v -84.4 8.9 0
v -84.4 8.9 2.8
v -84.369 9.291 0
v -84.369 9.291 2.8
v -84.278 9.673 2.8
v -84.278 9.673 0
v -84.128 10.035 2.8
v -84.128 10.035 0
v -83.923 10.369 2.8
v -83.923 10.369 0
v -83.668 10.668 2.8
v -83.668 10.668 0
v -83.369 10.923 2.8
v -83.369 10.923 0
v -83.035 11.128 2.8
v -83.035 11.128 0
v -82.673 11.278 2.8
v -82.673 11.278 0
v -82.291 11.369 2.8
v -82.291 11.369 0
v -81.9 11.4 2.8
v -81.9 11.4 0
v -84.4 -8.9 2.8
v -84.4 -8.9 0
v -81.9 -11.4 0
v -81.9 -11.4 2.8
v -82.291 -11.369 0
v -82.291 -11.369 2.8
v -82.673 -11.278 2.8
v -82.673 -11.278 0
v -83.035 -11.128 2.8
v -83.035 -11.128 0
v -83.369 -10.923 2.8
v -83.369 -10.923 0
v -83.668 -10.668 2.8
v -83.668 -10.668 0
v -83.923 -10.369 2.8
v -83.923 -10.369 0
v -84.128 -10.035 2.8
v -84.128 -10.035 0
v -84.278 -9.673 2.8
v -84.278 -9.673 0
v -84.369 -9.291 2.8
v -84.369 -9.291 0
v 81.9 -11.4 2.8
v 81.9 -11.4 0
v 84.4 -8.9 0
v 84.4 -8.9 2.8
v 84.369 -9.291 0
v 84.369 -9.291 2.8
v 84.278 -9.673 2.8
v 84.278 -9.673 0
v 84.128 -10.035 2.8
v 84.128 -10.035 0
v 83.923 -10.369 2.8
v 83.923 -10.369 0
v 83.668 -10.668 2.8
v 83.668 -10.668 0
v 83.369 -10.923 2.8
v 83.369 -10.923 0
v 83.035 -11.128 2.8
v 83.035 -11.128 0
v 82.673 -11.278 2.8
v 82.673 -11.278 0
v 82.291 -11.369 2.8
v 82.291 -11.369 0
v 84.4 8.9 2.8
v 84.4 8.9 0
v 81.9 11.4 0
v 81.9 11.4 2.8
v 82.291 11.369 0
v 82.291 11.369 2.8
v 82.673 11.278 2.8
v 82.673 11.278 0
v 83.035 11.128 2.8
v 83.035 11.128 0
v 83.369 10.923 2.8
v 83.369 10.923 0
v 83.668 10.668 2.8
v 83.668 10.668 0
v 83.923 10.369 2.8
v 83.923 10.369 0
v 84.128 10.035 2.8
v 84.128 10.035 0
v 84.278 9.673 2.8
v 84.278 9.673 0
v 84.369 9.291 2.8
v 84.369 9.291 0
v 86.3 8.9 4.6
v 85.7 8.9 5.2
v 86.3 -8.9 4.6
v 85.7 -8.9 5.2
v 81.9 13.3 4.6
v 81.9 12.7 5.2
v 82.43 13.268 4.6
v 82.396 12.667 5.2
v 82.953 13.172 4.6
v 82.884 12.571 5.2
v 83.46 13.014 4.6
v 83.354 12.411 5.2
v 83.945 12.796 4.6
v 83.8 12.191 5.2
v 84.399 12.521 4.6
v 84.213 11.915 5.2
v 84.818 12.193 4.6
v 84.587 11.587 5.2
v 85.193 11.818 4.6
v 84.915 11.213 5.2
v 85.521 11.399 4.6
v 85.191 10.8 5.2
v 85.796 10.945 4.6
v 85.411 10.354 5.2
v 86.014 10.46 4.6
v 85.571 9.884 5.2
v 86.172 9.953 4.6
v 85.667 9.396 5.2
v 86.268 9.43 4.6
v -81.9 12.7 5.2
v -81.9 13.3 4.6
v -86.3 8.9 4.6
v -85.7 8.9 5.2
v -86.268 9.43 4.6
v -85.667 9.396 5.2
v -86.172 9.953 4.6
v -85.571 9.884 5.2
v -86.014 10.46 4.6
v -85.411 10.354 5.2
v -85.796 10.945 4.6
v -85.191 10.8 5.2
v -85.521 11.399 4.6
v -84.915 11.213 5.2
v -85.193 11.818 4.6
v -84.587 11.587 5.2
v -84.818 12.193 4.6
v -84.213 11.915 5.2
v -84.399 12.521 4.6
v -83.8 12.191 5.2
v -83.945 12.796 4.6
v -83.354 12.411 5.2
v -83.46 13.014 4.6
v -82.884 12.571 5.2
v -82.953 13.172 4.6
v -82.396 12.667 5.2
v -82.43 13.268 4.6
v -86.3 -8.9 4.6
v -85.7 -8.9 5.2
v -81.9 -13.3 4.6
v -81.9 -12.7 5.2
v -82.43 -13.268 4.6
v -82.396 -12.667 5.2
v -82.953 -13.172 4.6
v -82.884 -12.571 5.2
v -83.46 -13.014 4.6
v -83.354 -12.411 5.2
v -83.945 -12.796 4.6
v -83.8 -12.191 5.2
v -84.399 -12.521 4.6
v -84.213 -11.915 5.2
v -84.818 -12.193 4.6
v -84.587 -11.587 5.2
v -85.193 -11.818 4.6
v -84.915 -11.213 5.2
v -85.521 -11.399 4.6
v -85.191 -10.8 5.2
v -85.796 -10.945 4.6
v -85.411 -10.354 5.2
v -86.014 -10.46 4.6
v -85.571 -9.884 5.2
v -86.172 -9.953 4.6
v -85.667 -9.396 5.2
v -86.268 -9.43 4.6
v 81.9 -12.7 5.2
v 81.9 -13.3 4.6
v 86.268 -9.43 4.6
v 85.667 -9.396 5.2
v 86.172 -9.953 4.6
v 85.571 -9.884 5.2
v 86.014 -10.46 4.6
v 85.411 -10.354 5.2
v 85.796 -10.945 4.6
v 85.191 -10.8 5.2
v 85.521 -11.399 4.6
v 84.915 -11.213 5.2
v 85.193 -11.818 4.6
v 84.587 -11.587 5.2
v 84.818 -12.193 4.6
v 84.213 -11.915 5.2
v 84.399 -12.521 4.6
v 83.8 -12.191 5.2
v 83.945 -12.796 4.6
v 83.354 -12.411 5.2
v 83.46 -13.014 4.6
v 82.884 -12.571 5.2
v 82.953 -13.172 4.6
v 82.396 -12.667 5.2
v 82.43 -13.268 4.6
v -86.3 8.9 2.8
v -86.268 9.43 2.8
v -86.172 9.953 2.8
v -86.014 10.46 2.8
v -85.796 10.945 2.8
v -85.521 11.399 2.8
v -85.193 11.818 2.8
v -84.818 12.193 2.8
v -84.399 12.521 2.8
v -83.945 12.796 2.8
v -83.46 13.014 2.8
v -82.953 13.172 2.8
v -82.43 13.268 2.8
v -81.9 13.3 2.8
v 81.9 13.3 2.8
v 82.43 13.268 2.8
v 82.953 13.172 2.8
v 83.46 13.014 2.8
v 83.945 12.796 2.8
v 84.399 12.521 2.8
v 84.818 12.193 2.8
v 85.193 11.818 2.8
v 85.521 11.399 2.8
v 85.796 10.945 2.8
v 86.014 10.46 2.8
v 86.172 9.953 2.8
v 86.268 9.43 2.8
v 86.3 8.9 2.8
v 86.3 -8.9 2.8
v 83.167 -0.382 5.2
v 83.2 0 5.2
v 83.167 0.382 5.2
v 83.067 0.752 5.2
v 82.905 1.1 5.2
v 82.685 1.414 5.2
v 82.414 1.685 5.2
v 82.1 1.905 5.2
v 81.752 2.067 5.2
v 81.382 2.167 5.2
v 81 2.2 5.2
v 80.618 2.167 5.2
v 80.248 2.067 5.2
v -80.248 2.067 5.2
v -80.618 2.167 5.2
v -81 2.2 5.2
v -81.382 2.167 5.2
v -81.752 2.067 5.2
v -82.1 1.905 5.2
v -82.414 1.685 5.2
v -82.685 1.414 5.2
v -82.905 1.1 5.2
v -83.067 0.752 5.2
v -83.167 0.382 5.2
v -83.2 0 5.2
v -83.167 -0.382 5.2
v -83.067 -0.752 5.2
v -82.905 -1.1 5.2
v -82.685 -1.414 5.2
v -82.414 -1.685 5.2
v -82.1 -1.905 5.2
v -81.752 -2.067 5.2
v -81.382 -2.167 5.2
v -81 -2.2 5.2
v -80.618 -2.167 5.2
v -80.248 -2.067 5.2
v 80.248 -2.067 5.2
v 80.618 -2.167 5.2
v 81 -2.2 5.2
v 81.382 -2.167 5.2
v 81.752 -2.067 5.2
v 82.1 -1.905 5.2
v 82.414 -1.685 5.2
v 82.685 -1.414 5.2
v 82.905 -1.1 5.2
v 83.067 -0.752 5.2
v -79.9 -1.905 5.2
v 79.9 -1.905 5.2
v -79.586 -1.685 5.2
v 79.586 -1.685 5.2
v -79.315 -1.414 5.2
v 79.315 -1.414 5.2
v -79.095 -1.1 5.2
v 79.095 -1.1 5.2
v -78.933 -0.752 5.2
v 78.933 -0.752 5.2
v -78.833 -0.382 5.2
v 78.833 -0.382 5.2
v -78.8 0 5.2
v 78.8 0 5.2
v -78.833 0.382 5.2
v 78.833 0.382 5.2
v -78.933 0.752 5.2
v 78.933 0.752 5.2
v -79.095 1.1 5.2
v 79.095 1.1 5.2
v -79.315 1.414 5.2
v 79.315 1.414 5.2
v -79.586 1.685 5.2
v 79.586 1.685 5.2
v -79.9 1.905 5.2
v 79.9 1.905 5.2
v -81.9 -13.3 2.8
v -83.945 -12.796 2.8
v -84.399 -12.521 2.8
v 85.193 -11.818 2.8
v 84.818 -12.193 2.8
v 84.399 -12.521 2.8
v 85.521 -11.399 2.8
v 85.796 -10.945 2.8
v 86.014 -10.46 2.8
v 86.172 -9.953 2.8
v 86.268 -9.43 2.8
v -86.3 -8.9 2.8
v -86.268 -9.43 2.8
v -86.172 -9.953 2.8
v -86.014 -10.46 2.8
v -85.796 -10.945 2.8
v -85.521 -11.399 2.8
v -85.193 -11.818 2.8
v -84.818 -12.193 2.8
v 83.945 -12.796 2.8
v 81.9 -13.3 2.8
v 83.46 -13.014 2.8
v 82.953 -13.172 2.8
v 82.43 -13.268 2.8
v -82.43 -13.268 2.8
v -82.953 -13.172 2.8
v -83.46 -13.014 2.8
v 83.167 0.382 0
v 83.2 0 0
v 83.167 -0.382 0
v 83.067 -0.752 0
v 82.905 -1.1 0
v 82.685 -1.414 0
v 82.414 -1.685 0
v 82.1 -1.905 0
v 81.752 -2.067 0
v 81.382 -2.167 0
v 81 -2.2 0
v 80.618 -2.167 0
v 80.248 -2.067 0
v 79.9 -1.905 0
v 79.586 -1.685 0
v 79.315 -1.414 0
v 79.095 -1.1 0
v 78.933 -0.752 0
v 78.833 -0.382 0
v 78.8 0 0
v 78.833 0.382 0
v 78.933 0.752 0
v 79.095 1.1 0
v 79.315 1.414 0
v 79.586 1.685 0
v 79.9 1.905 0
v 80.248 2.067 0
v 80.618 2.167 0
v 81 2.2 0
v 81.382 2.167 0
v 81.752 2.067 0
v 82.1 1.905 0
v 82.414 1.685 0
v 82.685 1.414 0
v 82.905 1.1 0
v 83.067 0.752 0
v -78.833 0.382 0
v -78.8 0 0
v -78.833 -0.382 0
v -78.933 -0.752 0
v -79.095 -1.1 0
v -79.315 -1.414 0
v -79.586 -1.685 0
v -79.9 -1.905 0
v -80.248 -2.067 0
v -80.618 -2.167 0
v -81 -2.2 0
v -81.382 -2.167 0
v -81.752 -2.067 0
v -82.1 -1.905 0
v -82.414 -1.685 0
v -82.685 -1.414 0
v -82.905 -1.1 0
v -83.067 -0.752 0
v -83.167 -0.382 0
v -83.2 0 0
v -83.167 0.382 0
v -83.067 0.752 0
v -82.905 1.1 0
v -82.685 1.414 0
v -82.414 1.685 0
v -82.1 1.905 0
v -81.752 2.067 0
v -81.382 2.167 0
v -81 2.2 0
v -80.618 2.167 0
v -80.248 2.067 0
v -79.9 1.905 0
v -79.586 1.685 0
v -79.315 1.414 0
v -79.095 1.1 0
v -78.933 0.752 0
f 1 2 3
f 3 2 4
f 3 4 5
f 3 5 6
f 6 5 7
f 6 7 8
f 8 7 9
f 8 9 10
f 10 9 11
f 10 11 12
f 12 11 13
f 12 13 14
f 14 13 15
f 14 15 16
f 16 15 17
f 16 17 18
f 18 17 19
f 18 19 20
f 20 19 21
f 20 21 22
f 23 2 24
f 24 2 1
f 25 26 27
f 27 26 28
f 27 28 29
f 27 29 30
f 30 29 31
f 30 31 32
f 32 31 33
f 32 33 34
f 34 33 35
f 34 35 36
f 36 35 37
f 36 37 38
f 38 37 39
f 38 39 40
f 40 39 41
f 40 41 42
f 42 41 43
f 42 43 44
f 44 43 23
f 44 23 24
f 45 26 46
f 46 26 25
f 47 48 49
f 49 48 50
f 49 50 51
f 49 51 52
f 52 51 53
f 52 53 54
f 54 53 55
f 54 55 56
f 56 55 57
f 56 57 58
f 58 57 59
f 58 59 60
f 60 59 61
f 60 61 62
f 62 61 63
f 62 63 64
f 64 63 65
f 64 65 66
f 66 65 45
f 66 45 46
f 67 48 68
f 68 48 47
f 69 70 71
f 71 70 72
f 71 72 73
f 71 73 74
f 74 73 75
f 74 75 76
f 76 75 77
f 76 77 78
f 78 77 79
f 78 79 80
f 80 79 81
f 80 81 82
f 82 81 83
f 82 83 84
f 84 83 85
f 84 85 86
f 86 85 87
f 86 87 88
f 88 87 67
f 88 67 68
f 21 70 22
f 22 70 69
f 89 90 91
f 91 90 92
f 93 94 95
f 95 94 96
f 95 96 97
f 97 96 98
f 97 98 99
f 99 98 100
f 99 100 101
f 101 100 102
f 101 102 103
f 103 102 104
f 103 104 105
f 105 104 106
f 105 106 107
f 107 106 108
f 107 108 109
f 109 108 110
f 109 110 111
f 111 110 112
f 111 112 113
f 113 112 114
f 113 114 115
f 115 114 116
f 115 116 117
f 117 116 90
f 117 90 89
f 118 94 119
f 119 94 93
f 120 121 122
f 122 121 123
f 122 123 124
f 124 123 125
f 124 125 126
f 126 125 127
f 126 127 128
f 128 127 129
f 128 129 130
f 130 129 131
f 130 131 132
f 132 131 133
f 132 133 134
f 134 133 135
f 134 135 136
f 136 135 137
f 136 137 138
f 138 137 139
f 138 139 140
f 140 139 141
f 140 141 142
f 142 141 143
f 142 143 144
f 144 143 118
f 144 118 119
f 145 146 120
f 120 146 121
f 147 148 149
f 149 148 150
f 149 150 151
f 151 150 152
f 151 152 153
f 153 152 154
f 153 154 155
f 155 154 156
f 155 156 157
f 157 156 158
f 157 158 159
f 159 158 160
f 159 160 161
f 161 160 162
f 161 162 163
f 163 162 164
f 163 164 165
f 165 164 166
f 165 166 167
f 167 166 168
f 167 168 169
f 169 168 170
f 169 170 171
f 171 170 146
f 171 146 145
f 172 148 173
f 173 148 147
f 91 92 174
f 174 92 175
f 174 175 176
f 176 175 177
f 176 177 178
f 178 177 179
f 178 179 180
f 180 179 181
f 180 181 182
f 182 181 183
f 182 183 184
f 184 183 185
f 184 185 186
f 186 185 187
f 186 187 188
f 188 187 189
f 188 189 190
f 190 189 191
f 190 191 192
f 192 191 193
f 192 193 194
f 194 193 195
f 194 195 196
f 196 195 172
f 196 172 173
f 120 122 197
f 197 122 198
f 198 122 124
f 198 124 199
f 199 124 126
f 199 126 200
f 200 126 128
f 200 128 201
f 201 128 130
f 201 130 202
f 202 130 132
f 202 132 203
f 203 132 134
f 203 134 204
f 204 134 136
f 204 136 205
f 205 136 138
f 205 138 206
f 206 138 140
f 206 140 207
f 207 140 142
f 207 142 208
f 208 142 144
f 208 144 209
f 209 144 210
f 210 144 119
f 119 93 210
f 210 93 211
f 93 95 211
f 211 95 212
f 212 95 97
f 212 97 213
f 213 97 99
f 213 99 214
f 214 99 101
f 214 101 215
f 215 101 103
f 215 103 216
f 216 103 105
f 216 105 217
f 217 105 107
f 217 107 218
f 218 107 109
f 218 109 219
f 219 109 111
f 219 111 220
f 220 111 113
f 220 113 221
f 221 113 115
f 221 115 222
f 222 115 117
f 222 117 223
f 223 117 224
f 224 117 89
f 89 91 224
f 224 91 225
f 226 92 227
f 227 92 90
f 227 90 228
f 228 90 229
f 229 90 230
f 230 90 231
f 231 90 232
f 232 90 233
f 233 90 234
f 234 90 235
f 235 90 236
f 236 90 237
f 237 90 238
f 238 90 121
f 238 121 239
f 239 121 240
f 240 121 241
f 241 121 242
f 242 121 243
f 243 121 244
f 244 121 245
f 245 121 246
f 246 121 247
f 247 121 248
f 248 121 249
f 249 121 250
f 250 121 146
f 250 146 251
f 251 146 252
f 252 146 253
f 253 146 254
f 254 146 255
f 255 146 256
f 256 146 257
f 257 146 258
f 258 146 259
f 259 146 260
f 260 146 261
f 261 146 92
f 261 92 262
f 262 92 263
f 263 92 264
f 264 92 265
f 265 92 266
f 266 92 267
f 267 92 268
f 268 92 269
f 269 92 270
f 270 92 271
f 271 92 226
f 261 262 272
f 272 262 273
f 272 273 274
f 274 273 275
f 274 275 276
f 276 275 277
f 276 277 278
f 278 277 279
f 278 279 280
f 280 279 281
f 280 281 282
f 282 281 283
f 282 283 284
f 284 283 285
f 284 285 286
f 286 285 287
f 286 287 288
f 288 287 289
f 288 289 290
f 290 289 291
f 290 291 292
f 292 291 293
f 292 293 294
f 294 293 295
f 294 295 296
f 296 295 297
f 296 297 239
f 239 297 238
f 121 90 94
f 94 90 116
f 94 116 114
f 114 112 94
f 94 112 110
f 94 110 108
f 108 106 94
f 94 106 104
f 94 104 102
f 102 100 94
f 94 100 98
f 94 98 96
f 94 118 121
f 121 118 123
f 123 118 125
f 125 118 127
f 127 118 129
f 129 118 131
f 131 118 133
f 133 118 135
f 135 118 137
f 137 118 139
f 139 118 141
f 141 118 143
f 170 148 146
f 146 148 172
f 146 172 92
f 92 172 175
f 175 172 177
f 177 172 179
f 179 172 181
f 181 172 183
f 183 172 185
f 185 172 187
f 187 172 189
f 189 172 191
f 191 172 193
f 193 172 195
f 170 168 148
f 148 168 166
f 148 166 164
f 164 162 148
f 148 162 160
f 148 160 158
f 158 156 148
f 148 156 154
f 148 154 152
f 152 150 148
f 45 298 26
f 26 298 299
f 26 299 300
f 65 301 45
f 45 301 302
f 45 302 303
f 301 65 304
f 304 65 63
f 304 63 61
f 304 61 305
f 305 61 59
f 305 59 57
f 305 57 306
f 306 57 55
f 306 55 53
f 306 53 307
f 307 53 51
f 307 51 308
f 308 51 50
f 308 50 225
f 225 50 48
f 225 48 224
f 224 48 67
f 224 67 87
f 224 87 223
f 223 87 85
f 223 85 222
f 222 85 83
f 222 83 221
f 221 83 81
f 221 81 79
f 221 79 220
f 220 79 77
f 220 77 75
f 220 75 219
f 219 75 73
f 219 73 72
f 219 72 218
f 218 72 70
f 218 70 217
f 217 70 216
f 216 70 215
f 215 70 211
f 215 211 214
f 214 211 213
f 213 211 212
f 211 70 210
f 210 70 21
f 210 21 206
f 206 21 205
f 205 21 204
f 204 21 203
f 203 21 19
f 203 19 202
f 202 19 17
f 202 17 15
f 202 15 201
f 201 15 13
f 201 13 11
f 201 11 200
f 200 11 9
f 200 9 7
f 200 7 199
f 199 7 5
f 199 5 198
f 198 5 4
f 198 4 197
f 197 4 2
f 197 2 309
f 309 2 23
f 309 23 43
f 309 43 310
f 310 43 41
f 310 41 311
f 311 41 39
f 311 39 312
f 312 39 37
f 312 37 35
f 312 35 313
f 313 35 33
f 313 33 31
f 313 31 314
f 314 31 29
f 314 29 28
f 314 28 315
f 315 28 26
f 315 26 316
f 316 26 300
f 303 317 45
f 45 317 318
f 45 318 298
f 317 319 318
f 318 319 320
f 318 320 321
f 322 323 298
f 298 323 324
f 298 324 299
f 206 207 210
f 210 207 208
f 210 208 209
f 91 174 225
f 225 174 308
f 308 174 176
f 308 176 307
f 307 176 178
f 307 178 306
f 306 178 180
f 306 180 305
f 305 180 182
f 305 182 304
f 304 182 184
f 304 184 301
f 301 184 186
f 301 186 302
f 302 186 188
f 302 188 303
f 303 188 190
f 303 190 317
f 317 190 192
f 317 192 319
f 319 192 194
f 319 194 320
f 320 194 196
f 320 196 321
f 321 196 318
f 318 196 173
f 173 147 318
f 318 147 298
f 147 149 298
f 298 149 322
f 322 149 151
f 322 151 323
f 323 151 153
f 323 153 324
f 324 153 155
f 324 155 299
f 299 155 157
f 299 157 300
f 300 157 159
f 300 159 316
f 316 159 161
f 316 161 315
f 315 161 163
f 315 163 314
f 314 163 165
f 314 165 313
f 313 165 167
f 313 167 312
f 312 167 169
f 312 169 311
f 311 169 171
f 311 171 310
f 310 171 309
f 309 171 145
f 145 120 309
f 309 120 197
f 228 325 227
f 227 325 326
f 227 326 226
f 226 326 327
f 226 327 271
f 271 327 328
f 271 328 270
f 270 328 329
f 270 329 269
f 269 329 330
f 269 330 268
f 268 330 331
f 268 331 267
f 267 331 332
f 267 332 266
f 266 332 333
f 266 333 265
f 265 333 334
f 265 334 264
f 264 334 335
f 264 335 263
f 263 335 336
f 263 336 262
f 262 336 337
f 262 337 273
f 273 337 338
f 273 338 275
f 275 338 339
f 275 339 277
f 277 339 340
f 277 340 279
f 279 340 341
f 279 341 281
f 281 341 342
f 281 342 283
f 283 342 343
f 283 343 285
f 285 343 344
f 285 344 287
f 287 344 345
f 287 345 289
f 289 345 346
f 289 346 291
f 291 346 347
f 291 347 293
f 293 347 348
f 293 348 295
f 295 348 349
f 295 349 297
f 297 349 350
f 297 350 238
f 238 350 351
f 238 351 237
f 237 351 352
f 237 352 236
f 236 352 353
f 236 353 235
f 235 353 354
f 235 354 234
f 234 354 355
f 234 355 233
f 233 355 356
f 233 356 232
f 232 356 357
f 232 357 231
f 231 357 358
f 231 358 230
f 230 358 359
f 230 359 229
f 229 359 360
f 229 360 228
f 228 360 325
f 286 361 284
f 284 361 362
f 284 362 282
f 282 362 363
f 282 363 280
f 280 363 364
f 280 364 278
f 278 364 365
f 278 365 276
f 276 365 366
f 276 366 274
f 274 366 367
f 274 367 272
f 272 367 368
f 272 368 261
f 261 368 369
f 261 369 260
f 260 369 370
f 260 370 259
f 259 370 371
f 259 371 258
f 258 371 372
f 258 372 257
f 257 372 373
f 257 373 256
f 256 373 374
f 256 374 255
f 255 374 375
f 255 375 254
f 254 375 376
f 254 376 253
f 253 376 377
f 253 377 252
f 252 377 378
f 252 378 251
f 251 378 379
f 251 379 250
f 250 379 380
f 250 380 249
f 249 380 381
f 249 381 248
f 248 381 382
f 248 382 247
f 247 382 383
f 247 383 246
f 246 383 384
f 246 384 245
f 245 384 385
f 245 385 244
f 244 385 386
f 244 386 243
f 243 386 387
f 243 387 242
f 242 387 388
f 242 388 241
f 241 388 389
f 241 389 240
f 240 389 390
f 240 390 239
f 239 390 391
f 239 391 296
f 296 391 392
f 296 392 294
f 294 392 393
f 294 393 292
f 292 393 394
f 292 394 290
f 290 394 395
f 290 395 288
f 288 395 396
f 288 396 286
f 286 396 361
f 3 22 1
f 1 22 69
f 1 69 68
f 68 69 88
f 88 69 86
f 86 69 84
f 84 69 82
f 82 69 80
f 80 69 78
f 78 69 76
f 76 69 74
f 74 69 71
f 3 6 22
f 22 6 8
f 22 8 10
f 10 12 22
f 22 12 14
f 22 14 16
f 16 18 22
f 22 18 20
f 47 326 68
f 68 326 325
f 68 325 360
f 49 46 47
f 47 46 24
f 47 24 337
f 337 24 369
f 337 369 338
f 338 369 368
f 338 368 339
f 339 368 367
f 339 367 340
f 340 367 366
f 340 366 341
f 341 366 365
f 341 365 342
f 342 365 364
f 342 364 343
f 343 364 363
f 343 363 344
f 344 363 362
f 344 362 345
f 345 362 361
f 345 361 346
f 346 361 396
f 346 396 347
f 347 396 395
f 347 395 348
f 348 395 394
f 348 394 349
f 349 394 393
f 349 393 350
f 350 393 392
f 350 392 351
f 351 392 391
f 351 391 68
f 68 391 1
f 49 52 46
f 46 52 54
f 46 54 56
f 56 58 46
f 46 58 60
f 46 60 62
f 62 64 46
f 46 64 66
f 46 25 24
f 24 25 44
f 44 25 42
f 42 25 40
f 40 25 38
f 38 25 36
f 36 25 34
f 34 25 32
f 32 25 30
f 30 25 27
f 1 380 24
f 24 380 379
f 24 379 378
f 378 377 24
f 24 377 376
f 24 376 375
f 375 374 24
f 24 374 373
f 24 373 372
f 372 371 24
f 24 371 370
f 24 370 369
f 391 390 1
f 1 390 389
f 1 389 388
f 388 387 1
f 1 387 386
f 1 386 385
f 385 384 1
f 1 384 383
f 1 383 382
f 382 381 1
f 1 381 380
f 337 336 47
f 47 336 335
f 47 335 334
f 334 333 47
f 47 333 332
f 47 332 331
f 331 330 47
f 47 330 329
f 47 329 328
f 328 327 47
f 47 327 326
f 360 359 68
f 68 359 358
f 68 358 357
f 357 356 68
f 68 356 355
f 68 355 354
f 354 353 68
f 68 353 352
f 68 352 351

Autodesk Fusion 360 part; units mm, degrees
sketch "Sketch1" plane through (0, 0, 0) normal (0, 0, 1) x (1, 0, 0)
  line L0 (-84.9, 11.9) -> (84.9, 11.9)
  line L1 (84.9, 11.9) -> (84.9, -11.9)
  line L2 (84.9, -11.9) -> (-84.9, -11.9)
  line L3 (-84.9, -11.9) -> (-84.9, 11.9)
  circle A0 centre (-81.9, 8.9) radius 3
  circle A1 centre (-81.9, -8.9) radius 3
  circle A2 centre (81.9, 8.9) radius 3
  circle A3 centre (81.9, -8.9) radius 3
  line L4 (-107.1873, 0) -> (-105, 0)
  line L5 (-105, 0) -> (105, 0) construction
  circle A4 centre (-81, 0) radius 2.2
  circle A5 centre (81, 0) radius 2.2
  dimension "d21" = 169.8
  dimension "d22" = 84.9
  dimension "d23" = 23.8
  dimension "d24" = 11.9
  dimension "d25" = 6
  dimension "d26" = 6
  dimension "d27" = 6
  dimension "d28" = 6
  dimension "d29" = 210
  dimension "d30" = 4.4
  dimension "d31" = 4.4
  dimension "d32" = 3.9
  dimension "d33" = 3.9
extrude "Extrude1" add sketch "Sketch1" along normal blind 2.8 contours L0 L1 L2 L3 A0 A1 A2 A3 | A0 | A2 | A1 | A3
sketch "Sketch2" plane through (0, 0, 2.8) normal (0, 0, 1) x (-1, 0, 0)
  circle A0 centre (81, 0) radius 2.2
  circle A1 centre (-81, 0) radius 2.2
  arc A2 (81.9, -11.9) -> (84.9, -8.9) centre (81.9, -8.9) ccw
  line L0 (84.9, -8.9) -> (84.9, 8.9)
  arc A3 (84.9, 8.9) -> (81.9, 11.9) centre (81.9, 8.9) ccw
  line L1 (81.9, 11.9) -> (-81.9, 11.9)
  arc A4 (-81.9, 11.9) -> (-84.9, 8.9) centre (-81.9, 8.9) ccw
  line L2 (-84.9, 8.9) -> (-84.9, -8.9)
  arc A5 (-84.9, -8.9) -> (-81.9, -11.9) centre (-81.9, -8.9) ccw
  line L3 (-81.9, -11.9) -> (81.9, -11.9)
  line L4 (-81.9, -13.3) -> (81.9, -13.3)
  arc A6 (81.9, -13.3) -> (86.3, -8.9) centre (81.9, -8.9) ccw
  line L5 (86.3, -8.9) -> (86.3, 8.9)
  arc A7 (86.3, 8.9) -> (81.9, 13.3) centre (81.9, 8.9) ccw
  line L6 (81.9, 13.3) -> (-81.9, 13.3)
  arc A8 (-81.9, 13.3) -> (-86.3, 8.9) centre (-81.9, 8.9) ccw
  line L7 (-86.3, 8.9) -> (-86.3, -8.9)
  arc A9 (-86.3, -8.9) -> (-81.9, -13.3) centre (-81.9, -8.9) ccw
  dimension "d36" = 1.4
extrude "Extrude2" add sketch "Sketch2" along normal blind 2.4 contours A2 L0 A3 L1 A4 L2 A5 L3 | L4 A6 L5 A7 L6 A8 L7 A9
chamfer "Chamfer1" distance 0.6 angle 45 8 edges at (86.3, 0, 5.2) (85.0113, 12.0113, 5.2) (0, 13.3, 5.2) (-85.0113, 12.0113, 5.2) (-86.3, 0, 5.2) (-85.0113, -12.0113, 5.2) (0, -13.3, 5.2) (85.0113, -12.0113, 5.2)
sketch "Sketch4" plane through (-1.7827, -2.3697, 0) normal (0, 0, -1) x (1, 0, 0)
  circle A0 centre (-79.2173, -2.3697) radius 2.2
  circle A1 centre (82.7827, -2.3697) radius 2.2
  arc A2 (-83.1173, -11.2697) -> (-80.1173, -14.2697) centre (-80.1173, -11.2697) ccw
  line L0 (-80.1173, -14.2697) -> (83.6827, -14.2697)
  arc A3 (83.6827, -14.2697) -> (86.6827, -11.2697) centre (83.6827, -11.2697) ccw
  line L1 (86.6827, -11.2697) -> (86.6827, 6.5303)
  arc A4 (86.6827, 6.5303) -> (83.6827, 9.5303) centre (83.6827, 6.5303) ccw
  line L2 (83.6827, 9.5303) -> (-80.1173, 9.5303)
  arc A5 (-80.1173, 9.5303) -> (-83.1173, 6.5303) centre (-80.1173, 6.5303) ccw
  line L3 (-83.1173, 6.5303) -> (-83.1173, -11.2697)
  line L4 (-82.6173, 6.5303) -> (-82.6173, -11.2697)
  arc A6 (-82.6173, -11.2697) -> (-80.1173, -13.7697) centre (-80.1173, -11.2697) ccw
  line L5 (-80.1173, -13.7697) -> (83.6827, -13.7697)
  arc A7 (83.6827, -13.7697) -> (86.1827, -11.2697) centre (83.6827, -11.2697) ccw
  line L6 (86.1827, -11.2697) -> (86.1827, 6.5303)
  arc A8 (86.1827, 6.5303) -> (83.6827, 9.0303) centre (83.6827, 6.5303) ccw
  line L7 (83.6827, 9.0303) -> (-80.1173, 9.0303)
  arc A9 (-80.1173, 9.0303) -> (-82.6173, 6.5303) centre (-80.1173, 6.5303) ccw
  dimension "d44" = -0.5
extrude "Extrude4" cut sketch "Sketch4" against normal up to surface (2.8 mm away) contours A2 L0 A3 L1 A4 L2 A5 L3
equation "d22 = d21 / 2"
equation "d24 = d23 / 2"
equation "d26 = d25"
equation "d27 = d25"
equation "d28 = d25"
equation "d33 = d32"
